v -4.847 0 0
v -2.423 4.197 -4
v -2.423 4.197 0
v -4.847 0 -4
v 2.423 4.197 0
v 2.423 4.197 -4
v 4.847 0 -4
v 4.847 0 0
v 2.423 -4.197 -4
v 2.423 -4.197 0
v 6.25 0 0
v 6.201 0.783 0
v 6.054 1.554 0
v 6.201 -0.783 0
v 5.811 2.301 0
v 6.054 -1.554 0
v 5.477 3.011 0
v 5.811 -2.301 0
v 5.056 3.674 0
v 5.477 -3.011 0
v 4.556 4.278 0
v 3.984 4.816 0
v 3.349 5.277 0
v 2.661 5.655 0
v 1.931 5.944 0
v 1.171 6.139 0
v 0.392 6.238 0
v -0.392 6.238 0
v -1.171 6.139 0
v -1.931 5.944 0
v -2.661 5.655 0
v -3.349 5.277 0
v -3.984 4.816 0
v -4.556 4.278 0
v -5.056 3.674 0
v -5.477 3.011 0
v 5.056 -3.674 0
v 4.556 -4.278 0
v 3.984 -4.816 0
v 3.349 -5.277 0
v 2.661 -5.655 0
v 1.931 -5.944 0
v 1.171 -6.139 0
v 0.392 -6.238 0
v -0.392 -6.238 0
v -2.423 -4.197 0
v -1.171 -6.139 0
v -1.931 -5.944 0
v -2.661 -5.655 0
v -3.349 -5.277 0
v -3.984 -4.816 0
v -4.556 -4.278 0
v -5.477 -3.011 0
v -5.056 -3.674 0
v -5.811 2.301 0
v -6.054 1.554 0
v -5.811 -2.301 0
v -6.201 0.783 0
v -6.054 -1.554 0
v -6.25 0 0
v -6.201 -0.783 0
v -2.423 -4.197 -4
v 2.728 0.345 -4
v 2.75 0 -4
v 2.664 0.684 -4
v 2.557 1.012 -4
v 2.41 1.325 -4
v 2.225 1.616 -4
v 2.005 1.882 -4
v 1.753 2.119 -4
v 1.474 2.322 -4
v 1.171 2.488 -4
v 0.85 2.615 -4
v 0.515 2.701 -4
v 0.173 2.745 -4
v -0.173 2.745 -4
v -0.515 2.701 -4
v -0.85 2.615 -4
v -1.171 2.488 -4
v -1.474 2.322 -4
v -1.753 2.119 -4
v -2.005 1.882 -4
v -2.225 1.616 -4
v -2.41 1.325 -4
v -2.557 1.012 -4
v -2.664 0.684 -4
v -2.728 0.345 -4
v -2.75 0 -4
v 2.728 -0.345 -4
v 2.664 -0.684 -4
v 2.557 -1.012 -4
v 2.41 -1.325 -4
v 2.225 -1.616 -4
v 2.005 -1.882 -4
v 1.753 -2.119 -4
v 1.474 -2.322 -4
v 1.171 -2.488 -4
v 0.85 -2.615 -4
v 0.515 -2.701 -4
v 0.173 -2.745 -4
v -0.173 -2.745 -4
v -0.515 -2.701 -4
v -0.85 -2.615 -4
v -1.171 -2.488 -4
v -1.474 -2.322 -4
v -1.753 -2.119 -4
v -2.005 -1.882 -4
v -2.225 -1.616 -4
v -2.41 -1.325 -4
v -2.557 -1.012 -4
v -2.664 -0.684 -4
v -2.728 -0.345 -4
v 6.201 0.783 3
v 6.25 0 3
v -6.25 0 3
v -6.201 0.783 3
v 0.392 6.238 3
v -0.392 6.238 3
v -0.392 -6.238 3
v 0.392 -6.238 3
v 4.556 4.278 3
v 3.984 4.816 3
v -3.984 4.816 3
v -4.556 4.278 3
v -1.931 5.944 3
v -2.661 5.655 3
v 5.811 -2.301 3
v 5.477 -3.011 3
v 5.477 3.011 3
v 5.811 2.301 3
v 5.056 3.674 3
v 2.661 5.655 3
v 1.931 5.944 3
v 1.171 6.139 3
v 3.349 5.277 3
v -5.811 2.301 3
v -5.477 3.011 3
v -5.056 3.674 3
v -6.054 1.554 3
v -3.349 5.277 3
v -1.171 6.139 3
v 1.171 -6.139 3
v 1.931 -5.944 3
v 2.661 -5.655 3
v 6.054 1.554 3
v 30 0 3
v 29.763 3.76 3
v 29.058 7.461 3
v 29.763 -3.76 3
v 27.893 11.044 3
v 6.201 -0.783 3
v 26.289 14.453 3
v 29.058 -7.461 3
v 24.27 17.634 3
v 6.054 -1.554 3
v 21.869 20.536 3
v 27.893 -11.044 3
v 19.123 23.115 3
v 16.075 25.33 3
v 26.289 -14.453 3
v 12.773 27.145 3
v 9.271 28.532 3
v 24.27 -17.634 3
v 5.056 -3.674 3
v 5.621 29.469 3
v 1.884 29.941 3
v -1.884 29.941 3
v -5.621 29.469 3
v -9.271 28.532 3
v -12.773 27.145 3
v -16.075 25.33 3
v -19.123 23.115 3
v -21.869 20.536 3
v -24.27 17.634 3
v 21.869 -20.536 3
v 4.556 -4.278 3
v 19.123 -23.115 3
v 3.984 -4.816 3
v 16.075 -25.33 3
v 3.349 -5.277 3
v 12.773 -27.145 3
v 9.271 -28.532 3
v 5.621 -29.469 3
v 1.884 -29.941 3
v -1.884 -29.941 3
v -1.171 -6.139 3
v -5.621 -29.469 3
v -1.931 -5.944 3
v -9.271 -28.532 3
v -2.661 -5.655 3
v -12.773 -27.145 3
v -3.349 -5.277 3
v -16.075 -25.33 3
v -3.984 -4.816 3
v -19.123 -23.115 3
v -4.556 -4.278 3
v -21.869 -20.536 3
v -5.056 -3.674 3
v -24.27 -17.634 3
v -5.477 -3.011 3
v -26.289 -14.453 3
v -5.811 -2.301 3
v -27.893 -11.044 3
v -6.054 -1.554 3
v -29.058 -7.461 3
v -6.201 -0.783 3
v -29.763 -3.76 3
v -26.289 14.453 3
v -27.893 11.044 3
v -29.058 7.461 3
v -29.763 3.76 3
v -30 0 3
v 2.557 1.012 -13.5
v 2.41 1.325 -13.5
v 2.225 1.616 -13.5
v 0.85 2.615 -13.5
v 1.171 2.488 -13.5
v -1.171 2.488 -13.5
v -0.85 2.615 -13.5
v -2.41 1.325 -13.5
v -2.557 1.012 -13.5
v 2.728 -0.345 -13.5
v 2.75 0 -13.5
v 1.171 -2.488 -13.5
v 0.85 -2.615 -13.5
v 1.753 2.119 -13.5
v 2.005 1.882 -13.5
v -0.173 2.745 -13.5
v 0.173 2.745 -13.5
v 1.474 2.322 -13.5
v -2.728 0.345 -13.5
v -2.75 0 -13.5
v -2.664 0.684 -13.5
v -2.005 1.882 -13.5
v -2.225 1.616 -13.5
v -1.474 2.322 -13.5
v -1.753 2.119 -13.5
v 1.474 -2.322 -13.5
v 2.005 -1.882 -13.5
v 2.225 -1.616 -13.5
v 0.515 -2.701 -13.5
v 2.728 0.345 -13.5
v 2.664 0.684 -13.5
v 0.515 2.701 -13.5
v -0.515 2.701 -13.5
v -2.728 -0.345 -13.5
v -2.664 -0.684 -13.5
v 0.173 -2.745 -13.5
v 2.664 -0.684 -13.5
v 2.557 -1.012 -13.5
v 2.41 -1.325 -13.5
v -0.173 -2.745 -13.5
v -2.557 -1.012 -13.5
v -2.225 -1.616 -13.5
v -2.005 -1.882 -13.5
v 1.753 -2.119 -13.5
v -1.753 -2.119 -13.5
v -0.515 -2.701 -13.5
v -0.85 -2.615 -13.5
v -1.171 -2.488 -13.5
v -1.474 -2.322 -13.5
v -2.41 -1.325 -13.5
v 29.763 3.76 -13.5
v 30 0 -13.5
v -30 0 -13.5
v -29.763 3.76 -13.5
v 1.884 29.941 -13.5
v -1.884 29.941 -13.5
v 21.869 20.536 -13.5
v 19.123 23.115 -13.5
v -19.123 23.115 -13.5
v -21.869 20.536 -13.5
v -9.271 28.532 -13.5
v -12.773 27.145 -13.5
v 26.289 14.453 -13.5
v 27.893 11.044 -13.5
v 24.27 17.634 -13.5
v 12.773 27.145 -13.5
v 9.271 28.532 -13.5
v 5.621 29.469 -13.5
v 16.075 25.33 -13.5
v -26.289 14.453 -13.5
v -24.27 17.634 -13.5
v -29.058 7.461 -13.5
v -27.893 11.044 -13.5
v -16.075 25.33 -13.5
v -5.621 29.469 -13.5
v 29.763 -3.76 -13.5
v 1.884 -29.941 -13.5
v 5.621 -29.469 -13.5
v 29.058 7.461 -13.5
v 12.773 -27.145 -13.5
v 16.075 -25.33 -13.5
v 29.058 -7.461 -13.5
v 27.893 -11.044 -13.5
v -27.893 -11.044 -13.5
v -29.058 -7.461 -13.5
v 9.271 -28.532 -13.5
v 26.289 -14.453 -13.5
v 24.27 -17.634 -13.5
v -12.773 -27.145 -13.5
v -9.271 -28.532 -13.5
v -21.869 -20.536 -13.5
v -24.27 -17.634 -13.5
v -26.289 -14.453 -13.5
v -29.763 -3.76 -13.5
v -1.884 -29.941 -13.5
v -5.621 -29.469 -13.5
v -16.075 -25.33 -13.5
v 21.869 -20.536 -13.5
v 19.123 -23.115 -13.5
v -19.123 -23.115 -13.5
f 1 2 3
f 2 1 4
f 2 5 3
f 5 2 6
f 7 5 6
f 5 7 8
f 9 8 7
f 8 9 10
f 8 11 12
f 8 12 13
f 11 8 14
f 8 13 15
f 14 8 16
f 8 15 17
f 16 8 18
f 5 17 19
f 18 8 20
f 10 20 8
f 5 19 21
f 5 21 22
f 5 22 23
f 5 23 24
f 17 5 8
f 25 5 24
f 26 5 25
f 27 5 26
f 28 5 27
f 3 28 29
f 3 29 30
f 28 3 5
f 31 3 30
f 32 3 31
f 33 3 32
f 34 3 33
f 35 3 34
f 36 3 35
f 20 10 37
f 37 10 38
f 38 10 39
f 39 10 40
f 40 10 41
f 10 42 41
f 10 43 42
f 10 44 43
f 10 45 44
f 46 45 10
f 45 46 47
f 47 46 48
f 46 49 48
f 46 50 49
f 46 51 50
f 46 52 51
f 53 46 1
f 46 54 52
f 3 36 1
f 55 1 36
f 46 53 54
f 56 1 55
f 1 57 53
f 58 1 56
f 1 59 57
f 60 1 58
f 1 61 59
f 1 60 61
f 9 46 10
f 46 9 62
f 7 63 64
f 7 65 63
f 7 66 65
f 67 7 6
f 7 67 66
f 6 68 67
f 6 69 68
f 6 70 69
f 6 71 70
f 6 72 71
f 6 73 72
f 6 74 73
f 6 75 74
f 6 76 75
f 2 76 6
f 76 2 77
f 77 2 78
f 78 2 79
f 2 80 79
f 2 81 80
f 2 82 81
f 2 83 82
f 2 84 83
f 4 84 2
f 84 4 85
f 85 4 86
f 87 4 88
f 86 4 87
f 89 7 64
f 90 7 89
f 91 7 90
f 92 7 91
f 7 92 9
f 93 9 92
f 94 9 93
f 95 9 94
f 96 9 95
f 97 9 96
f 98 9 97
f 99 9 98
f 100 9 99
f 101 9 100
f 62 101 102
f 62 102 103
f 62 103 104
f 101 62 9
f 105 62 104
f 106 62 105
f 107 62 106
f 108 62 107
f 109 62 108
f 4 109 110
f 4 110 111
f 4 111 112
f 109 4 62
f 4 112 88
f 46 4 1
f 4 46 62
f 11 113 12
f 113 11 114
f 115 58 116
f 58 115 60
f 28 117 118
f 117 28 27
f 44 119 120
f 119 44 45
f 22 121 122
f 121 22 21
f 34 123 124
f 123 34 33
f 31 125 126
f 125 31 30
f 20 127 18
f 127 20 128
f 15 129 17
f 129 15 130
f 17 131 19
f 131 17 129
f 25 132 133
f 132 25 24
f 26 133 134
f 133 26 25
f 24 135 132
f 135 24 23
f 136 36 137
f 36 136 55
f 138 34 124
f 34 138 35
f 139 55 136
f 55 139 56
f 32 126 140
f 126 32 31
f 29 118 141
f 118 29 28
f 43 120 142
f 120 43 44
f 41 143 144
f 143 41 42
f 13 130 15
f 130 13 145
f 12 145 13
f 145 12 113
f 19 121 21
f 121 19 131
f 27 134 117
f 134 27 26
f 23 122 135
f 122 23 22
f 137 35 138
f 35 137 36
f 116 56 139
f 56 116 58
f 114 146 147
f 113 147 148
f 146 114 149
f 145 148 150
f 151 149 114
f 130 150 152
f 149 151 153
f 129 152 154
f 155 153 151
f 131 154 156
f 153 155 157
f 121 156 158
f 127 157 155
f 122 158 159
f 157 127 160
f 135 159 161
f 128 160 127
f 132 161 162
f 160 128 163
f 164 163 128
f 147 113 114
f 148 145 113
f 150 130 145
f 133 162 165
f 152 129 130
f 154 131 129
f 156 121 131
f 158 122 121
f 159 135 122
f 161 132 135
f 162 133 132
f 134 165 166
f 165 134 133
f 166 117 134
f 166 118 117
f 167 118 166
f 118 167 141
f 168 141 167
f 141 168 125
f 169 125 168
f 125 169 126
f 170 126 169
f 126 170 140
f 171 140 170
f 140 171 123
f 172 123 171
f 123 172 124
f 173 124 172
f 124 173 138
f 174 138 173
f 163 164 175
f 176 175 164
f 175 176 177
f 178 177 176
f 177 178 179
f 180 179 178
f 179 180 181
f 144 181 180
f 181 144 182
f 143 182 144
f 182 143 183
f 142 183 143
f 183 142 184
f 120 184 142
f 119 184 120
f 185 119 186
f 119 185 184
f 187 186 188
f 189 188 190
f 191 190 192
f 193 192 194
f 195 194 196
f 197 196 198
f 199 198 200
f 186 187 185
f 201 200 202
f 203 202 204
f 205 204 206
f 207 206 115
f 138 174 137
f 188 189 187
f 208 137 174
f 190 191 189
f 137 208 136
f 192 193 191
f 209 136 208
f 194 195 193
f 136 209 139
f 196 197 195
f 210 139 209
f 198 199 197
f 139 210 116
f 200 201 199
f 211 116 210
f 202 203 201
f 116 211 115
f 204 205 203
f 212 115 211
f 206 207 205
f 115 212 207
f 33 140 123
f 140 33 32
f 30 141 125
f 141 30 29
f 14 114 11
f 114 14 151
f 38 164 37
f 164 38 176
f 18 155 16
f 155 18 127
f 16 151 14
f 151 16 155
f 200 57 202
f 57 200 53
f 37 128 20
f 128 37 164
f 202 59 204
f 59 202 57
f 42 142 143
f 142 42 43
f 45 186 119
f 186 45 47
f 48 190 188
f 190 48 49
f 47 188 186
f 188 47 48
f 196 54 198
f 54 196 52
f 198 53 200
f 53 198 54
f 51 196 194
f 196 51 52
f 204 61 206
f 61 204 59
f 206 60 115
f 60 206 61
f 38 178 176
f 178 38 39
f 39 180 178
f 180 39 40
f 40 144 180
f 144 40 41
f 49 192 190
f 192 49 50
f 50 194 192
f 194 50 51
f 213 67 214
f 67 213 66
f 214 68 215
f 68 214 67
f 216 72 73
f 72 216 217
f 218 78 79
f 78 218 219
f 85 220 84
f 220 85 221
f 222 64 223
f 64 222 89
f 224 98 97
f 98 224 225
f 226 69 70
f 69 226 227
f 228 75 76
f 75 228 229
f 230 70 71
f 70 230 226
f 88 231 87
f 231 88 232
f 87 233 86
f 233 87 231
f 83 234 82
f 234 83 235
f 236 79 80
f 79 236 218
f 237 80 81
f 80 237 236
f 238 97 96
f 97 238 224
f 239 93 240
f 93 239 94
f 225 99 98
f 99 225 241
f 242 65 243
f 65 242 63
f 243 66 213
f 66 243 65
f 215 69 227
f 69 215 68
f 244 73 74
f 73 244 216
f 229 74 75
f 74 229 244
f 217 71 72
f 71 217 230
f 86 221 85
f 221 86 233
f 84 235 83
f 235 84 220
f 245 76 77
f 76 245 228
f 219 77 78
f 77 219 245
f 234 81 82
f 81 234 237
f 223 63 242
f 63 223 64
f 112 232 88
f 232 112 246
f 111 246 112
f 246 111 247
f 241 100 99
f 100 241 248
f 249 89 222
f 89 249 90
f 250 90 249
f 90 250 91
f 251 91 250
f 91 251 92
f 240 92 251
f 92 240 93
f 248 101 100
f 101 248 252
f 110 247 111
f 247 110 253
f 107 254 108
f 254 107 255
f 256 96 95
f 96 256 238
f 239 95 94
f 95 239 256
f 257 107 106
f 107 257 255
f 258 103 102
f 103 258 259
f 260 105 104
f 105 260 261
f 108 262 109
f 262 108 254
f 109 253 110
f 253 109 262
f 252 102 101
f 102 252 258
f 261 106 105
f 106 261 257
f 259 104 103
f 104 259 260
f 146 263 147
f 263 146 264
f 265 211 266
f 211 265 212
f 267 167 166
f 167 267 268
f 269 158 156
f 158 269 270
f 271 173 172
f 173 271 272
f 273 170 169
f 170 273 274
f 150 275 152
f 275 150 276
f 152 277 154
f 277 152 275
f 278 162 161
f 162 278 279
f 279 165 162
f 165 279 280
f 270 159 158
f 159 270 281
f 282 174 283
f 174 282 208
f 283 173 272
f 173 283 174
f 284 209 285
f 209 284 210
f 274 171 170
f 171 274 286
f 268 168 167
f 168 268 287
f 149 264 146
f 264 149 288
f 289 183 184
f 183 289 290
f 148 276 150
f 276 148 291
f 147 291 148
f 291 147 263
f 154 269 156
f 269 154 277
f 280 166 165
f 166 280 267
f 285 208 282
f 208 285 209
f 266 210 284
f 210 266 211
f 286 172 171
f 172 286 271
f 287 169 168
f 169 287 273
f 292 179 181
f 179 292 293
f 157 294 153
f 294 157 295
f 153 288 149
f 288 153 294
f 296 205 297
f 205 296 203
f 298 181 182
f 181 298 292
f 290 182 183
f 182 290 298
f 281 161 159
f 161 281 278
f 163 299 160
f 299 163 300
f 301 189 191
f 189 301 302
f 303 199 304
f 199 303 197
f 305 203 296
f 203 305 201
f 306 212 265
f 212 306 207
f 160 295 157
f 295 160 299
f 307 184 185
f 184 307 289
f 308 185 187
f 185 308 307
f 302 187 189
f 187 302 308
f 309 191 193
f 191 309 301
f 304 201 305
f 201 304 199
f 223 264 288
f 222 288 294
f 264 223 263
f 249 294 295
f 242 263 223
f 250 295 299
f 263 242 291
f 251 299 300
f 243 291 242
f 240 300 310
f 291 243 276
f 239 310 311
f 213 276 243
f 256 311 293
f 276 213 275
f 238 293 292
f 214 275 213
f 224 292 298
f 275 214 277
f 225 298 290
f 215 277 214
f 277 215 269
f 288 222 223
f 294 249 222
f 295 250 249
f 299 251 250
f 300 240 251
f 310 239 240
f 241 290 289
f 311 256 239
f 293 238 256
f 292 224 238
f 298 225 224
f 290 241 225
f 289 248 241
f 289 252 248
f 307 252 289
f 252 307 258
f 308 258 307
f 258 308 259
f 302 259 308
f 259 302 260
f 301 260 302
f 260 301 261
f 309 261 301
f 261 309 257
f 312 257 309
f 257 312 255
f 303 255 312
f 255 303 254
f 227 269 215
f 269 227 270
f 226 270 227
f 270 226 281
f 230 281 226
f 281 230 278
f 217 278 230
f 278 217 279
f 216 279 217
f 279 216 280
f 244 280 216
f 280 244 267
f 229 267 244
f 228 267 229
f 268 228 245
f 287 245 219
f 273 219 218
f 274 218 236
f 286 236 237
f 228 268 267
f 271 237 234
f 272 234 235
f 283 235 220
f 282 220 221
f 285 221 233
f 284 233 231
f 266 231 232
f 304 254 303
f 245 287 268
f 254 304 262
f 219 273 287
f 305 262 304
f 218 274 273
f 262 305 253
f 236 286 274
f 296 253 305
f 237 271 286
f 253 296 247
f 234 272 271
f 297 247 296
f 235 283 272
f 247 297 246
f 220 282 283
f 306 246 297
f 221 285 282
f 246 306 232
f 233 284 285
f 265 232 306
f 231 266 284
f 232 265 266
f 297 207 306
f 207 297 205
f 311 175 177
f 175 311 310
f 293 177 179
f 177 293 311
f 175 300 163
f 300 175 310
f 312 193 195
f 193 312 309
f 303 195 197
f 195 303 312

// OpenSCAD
$fn = 50;

difference() {
	union() {
		translate(v = [0, 0, -13.5]) {
			cylinder(h = 16.5, r = 30.0);
		}
	}
	union() {
		translate(v = [0, 0, 0]) {
			rotate(a = [0, 0, 0]) {
				difference() {
					union() {
						translate(v = [0, 0, -4]) {
							linear_extrude(height = 4) {
								polygon(points = [[4.8468, 0.0], [2.4234000000000004, 4.197451927062417], [-2.423399999999999, 4.197451927062417], [-4.8468, 5.935618106107392e-16], [-2.423400000000002, -4.197451927062416], [2.423399999999997, -4.197451927062419]]);
							}
						}
					}
					union();
				}
			}
		}
		#cylinder(h = 3, r = 6.25);
		#translate(v = [0, 0, -100.0]) {
			cylinder(h = 200, r = 2.75);
		}
	}
}
